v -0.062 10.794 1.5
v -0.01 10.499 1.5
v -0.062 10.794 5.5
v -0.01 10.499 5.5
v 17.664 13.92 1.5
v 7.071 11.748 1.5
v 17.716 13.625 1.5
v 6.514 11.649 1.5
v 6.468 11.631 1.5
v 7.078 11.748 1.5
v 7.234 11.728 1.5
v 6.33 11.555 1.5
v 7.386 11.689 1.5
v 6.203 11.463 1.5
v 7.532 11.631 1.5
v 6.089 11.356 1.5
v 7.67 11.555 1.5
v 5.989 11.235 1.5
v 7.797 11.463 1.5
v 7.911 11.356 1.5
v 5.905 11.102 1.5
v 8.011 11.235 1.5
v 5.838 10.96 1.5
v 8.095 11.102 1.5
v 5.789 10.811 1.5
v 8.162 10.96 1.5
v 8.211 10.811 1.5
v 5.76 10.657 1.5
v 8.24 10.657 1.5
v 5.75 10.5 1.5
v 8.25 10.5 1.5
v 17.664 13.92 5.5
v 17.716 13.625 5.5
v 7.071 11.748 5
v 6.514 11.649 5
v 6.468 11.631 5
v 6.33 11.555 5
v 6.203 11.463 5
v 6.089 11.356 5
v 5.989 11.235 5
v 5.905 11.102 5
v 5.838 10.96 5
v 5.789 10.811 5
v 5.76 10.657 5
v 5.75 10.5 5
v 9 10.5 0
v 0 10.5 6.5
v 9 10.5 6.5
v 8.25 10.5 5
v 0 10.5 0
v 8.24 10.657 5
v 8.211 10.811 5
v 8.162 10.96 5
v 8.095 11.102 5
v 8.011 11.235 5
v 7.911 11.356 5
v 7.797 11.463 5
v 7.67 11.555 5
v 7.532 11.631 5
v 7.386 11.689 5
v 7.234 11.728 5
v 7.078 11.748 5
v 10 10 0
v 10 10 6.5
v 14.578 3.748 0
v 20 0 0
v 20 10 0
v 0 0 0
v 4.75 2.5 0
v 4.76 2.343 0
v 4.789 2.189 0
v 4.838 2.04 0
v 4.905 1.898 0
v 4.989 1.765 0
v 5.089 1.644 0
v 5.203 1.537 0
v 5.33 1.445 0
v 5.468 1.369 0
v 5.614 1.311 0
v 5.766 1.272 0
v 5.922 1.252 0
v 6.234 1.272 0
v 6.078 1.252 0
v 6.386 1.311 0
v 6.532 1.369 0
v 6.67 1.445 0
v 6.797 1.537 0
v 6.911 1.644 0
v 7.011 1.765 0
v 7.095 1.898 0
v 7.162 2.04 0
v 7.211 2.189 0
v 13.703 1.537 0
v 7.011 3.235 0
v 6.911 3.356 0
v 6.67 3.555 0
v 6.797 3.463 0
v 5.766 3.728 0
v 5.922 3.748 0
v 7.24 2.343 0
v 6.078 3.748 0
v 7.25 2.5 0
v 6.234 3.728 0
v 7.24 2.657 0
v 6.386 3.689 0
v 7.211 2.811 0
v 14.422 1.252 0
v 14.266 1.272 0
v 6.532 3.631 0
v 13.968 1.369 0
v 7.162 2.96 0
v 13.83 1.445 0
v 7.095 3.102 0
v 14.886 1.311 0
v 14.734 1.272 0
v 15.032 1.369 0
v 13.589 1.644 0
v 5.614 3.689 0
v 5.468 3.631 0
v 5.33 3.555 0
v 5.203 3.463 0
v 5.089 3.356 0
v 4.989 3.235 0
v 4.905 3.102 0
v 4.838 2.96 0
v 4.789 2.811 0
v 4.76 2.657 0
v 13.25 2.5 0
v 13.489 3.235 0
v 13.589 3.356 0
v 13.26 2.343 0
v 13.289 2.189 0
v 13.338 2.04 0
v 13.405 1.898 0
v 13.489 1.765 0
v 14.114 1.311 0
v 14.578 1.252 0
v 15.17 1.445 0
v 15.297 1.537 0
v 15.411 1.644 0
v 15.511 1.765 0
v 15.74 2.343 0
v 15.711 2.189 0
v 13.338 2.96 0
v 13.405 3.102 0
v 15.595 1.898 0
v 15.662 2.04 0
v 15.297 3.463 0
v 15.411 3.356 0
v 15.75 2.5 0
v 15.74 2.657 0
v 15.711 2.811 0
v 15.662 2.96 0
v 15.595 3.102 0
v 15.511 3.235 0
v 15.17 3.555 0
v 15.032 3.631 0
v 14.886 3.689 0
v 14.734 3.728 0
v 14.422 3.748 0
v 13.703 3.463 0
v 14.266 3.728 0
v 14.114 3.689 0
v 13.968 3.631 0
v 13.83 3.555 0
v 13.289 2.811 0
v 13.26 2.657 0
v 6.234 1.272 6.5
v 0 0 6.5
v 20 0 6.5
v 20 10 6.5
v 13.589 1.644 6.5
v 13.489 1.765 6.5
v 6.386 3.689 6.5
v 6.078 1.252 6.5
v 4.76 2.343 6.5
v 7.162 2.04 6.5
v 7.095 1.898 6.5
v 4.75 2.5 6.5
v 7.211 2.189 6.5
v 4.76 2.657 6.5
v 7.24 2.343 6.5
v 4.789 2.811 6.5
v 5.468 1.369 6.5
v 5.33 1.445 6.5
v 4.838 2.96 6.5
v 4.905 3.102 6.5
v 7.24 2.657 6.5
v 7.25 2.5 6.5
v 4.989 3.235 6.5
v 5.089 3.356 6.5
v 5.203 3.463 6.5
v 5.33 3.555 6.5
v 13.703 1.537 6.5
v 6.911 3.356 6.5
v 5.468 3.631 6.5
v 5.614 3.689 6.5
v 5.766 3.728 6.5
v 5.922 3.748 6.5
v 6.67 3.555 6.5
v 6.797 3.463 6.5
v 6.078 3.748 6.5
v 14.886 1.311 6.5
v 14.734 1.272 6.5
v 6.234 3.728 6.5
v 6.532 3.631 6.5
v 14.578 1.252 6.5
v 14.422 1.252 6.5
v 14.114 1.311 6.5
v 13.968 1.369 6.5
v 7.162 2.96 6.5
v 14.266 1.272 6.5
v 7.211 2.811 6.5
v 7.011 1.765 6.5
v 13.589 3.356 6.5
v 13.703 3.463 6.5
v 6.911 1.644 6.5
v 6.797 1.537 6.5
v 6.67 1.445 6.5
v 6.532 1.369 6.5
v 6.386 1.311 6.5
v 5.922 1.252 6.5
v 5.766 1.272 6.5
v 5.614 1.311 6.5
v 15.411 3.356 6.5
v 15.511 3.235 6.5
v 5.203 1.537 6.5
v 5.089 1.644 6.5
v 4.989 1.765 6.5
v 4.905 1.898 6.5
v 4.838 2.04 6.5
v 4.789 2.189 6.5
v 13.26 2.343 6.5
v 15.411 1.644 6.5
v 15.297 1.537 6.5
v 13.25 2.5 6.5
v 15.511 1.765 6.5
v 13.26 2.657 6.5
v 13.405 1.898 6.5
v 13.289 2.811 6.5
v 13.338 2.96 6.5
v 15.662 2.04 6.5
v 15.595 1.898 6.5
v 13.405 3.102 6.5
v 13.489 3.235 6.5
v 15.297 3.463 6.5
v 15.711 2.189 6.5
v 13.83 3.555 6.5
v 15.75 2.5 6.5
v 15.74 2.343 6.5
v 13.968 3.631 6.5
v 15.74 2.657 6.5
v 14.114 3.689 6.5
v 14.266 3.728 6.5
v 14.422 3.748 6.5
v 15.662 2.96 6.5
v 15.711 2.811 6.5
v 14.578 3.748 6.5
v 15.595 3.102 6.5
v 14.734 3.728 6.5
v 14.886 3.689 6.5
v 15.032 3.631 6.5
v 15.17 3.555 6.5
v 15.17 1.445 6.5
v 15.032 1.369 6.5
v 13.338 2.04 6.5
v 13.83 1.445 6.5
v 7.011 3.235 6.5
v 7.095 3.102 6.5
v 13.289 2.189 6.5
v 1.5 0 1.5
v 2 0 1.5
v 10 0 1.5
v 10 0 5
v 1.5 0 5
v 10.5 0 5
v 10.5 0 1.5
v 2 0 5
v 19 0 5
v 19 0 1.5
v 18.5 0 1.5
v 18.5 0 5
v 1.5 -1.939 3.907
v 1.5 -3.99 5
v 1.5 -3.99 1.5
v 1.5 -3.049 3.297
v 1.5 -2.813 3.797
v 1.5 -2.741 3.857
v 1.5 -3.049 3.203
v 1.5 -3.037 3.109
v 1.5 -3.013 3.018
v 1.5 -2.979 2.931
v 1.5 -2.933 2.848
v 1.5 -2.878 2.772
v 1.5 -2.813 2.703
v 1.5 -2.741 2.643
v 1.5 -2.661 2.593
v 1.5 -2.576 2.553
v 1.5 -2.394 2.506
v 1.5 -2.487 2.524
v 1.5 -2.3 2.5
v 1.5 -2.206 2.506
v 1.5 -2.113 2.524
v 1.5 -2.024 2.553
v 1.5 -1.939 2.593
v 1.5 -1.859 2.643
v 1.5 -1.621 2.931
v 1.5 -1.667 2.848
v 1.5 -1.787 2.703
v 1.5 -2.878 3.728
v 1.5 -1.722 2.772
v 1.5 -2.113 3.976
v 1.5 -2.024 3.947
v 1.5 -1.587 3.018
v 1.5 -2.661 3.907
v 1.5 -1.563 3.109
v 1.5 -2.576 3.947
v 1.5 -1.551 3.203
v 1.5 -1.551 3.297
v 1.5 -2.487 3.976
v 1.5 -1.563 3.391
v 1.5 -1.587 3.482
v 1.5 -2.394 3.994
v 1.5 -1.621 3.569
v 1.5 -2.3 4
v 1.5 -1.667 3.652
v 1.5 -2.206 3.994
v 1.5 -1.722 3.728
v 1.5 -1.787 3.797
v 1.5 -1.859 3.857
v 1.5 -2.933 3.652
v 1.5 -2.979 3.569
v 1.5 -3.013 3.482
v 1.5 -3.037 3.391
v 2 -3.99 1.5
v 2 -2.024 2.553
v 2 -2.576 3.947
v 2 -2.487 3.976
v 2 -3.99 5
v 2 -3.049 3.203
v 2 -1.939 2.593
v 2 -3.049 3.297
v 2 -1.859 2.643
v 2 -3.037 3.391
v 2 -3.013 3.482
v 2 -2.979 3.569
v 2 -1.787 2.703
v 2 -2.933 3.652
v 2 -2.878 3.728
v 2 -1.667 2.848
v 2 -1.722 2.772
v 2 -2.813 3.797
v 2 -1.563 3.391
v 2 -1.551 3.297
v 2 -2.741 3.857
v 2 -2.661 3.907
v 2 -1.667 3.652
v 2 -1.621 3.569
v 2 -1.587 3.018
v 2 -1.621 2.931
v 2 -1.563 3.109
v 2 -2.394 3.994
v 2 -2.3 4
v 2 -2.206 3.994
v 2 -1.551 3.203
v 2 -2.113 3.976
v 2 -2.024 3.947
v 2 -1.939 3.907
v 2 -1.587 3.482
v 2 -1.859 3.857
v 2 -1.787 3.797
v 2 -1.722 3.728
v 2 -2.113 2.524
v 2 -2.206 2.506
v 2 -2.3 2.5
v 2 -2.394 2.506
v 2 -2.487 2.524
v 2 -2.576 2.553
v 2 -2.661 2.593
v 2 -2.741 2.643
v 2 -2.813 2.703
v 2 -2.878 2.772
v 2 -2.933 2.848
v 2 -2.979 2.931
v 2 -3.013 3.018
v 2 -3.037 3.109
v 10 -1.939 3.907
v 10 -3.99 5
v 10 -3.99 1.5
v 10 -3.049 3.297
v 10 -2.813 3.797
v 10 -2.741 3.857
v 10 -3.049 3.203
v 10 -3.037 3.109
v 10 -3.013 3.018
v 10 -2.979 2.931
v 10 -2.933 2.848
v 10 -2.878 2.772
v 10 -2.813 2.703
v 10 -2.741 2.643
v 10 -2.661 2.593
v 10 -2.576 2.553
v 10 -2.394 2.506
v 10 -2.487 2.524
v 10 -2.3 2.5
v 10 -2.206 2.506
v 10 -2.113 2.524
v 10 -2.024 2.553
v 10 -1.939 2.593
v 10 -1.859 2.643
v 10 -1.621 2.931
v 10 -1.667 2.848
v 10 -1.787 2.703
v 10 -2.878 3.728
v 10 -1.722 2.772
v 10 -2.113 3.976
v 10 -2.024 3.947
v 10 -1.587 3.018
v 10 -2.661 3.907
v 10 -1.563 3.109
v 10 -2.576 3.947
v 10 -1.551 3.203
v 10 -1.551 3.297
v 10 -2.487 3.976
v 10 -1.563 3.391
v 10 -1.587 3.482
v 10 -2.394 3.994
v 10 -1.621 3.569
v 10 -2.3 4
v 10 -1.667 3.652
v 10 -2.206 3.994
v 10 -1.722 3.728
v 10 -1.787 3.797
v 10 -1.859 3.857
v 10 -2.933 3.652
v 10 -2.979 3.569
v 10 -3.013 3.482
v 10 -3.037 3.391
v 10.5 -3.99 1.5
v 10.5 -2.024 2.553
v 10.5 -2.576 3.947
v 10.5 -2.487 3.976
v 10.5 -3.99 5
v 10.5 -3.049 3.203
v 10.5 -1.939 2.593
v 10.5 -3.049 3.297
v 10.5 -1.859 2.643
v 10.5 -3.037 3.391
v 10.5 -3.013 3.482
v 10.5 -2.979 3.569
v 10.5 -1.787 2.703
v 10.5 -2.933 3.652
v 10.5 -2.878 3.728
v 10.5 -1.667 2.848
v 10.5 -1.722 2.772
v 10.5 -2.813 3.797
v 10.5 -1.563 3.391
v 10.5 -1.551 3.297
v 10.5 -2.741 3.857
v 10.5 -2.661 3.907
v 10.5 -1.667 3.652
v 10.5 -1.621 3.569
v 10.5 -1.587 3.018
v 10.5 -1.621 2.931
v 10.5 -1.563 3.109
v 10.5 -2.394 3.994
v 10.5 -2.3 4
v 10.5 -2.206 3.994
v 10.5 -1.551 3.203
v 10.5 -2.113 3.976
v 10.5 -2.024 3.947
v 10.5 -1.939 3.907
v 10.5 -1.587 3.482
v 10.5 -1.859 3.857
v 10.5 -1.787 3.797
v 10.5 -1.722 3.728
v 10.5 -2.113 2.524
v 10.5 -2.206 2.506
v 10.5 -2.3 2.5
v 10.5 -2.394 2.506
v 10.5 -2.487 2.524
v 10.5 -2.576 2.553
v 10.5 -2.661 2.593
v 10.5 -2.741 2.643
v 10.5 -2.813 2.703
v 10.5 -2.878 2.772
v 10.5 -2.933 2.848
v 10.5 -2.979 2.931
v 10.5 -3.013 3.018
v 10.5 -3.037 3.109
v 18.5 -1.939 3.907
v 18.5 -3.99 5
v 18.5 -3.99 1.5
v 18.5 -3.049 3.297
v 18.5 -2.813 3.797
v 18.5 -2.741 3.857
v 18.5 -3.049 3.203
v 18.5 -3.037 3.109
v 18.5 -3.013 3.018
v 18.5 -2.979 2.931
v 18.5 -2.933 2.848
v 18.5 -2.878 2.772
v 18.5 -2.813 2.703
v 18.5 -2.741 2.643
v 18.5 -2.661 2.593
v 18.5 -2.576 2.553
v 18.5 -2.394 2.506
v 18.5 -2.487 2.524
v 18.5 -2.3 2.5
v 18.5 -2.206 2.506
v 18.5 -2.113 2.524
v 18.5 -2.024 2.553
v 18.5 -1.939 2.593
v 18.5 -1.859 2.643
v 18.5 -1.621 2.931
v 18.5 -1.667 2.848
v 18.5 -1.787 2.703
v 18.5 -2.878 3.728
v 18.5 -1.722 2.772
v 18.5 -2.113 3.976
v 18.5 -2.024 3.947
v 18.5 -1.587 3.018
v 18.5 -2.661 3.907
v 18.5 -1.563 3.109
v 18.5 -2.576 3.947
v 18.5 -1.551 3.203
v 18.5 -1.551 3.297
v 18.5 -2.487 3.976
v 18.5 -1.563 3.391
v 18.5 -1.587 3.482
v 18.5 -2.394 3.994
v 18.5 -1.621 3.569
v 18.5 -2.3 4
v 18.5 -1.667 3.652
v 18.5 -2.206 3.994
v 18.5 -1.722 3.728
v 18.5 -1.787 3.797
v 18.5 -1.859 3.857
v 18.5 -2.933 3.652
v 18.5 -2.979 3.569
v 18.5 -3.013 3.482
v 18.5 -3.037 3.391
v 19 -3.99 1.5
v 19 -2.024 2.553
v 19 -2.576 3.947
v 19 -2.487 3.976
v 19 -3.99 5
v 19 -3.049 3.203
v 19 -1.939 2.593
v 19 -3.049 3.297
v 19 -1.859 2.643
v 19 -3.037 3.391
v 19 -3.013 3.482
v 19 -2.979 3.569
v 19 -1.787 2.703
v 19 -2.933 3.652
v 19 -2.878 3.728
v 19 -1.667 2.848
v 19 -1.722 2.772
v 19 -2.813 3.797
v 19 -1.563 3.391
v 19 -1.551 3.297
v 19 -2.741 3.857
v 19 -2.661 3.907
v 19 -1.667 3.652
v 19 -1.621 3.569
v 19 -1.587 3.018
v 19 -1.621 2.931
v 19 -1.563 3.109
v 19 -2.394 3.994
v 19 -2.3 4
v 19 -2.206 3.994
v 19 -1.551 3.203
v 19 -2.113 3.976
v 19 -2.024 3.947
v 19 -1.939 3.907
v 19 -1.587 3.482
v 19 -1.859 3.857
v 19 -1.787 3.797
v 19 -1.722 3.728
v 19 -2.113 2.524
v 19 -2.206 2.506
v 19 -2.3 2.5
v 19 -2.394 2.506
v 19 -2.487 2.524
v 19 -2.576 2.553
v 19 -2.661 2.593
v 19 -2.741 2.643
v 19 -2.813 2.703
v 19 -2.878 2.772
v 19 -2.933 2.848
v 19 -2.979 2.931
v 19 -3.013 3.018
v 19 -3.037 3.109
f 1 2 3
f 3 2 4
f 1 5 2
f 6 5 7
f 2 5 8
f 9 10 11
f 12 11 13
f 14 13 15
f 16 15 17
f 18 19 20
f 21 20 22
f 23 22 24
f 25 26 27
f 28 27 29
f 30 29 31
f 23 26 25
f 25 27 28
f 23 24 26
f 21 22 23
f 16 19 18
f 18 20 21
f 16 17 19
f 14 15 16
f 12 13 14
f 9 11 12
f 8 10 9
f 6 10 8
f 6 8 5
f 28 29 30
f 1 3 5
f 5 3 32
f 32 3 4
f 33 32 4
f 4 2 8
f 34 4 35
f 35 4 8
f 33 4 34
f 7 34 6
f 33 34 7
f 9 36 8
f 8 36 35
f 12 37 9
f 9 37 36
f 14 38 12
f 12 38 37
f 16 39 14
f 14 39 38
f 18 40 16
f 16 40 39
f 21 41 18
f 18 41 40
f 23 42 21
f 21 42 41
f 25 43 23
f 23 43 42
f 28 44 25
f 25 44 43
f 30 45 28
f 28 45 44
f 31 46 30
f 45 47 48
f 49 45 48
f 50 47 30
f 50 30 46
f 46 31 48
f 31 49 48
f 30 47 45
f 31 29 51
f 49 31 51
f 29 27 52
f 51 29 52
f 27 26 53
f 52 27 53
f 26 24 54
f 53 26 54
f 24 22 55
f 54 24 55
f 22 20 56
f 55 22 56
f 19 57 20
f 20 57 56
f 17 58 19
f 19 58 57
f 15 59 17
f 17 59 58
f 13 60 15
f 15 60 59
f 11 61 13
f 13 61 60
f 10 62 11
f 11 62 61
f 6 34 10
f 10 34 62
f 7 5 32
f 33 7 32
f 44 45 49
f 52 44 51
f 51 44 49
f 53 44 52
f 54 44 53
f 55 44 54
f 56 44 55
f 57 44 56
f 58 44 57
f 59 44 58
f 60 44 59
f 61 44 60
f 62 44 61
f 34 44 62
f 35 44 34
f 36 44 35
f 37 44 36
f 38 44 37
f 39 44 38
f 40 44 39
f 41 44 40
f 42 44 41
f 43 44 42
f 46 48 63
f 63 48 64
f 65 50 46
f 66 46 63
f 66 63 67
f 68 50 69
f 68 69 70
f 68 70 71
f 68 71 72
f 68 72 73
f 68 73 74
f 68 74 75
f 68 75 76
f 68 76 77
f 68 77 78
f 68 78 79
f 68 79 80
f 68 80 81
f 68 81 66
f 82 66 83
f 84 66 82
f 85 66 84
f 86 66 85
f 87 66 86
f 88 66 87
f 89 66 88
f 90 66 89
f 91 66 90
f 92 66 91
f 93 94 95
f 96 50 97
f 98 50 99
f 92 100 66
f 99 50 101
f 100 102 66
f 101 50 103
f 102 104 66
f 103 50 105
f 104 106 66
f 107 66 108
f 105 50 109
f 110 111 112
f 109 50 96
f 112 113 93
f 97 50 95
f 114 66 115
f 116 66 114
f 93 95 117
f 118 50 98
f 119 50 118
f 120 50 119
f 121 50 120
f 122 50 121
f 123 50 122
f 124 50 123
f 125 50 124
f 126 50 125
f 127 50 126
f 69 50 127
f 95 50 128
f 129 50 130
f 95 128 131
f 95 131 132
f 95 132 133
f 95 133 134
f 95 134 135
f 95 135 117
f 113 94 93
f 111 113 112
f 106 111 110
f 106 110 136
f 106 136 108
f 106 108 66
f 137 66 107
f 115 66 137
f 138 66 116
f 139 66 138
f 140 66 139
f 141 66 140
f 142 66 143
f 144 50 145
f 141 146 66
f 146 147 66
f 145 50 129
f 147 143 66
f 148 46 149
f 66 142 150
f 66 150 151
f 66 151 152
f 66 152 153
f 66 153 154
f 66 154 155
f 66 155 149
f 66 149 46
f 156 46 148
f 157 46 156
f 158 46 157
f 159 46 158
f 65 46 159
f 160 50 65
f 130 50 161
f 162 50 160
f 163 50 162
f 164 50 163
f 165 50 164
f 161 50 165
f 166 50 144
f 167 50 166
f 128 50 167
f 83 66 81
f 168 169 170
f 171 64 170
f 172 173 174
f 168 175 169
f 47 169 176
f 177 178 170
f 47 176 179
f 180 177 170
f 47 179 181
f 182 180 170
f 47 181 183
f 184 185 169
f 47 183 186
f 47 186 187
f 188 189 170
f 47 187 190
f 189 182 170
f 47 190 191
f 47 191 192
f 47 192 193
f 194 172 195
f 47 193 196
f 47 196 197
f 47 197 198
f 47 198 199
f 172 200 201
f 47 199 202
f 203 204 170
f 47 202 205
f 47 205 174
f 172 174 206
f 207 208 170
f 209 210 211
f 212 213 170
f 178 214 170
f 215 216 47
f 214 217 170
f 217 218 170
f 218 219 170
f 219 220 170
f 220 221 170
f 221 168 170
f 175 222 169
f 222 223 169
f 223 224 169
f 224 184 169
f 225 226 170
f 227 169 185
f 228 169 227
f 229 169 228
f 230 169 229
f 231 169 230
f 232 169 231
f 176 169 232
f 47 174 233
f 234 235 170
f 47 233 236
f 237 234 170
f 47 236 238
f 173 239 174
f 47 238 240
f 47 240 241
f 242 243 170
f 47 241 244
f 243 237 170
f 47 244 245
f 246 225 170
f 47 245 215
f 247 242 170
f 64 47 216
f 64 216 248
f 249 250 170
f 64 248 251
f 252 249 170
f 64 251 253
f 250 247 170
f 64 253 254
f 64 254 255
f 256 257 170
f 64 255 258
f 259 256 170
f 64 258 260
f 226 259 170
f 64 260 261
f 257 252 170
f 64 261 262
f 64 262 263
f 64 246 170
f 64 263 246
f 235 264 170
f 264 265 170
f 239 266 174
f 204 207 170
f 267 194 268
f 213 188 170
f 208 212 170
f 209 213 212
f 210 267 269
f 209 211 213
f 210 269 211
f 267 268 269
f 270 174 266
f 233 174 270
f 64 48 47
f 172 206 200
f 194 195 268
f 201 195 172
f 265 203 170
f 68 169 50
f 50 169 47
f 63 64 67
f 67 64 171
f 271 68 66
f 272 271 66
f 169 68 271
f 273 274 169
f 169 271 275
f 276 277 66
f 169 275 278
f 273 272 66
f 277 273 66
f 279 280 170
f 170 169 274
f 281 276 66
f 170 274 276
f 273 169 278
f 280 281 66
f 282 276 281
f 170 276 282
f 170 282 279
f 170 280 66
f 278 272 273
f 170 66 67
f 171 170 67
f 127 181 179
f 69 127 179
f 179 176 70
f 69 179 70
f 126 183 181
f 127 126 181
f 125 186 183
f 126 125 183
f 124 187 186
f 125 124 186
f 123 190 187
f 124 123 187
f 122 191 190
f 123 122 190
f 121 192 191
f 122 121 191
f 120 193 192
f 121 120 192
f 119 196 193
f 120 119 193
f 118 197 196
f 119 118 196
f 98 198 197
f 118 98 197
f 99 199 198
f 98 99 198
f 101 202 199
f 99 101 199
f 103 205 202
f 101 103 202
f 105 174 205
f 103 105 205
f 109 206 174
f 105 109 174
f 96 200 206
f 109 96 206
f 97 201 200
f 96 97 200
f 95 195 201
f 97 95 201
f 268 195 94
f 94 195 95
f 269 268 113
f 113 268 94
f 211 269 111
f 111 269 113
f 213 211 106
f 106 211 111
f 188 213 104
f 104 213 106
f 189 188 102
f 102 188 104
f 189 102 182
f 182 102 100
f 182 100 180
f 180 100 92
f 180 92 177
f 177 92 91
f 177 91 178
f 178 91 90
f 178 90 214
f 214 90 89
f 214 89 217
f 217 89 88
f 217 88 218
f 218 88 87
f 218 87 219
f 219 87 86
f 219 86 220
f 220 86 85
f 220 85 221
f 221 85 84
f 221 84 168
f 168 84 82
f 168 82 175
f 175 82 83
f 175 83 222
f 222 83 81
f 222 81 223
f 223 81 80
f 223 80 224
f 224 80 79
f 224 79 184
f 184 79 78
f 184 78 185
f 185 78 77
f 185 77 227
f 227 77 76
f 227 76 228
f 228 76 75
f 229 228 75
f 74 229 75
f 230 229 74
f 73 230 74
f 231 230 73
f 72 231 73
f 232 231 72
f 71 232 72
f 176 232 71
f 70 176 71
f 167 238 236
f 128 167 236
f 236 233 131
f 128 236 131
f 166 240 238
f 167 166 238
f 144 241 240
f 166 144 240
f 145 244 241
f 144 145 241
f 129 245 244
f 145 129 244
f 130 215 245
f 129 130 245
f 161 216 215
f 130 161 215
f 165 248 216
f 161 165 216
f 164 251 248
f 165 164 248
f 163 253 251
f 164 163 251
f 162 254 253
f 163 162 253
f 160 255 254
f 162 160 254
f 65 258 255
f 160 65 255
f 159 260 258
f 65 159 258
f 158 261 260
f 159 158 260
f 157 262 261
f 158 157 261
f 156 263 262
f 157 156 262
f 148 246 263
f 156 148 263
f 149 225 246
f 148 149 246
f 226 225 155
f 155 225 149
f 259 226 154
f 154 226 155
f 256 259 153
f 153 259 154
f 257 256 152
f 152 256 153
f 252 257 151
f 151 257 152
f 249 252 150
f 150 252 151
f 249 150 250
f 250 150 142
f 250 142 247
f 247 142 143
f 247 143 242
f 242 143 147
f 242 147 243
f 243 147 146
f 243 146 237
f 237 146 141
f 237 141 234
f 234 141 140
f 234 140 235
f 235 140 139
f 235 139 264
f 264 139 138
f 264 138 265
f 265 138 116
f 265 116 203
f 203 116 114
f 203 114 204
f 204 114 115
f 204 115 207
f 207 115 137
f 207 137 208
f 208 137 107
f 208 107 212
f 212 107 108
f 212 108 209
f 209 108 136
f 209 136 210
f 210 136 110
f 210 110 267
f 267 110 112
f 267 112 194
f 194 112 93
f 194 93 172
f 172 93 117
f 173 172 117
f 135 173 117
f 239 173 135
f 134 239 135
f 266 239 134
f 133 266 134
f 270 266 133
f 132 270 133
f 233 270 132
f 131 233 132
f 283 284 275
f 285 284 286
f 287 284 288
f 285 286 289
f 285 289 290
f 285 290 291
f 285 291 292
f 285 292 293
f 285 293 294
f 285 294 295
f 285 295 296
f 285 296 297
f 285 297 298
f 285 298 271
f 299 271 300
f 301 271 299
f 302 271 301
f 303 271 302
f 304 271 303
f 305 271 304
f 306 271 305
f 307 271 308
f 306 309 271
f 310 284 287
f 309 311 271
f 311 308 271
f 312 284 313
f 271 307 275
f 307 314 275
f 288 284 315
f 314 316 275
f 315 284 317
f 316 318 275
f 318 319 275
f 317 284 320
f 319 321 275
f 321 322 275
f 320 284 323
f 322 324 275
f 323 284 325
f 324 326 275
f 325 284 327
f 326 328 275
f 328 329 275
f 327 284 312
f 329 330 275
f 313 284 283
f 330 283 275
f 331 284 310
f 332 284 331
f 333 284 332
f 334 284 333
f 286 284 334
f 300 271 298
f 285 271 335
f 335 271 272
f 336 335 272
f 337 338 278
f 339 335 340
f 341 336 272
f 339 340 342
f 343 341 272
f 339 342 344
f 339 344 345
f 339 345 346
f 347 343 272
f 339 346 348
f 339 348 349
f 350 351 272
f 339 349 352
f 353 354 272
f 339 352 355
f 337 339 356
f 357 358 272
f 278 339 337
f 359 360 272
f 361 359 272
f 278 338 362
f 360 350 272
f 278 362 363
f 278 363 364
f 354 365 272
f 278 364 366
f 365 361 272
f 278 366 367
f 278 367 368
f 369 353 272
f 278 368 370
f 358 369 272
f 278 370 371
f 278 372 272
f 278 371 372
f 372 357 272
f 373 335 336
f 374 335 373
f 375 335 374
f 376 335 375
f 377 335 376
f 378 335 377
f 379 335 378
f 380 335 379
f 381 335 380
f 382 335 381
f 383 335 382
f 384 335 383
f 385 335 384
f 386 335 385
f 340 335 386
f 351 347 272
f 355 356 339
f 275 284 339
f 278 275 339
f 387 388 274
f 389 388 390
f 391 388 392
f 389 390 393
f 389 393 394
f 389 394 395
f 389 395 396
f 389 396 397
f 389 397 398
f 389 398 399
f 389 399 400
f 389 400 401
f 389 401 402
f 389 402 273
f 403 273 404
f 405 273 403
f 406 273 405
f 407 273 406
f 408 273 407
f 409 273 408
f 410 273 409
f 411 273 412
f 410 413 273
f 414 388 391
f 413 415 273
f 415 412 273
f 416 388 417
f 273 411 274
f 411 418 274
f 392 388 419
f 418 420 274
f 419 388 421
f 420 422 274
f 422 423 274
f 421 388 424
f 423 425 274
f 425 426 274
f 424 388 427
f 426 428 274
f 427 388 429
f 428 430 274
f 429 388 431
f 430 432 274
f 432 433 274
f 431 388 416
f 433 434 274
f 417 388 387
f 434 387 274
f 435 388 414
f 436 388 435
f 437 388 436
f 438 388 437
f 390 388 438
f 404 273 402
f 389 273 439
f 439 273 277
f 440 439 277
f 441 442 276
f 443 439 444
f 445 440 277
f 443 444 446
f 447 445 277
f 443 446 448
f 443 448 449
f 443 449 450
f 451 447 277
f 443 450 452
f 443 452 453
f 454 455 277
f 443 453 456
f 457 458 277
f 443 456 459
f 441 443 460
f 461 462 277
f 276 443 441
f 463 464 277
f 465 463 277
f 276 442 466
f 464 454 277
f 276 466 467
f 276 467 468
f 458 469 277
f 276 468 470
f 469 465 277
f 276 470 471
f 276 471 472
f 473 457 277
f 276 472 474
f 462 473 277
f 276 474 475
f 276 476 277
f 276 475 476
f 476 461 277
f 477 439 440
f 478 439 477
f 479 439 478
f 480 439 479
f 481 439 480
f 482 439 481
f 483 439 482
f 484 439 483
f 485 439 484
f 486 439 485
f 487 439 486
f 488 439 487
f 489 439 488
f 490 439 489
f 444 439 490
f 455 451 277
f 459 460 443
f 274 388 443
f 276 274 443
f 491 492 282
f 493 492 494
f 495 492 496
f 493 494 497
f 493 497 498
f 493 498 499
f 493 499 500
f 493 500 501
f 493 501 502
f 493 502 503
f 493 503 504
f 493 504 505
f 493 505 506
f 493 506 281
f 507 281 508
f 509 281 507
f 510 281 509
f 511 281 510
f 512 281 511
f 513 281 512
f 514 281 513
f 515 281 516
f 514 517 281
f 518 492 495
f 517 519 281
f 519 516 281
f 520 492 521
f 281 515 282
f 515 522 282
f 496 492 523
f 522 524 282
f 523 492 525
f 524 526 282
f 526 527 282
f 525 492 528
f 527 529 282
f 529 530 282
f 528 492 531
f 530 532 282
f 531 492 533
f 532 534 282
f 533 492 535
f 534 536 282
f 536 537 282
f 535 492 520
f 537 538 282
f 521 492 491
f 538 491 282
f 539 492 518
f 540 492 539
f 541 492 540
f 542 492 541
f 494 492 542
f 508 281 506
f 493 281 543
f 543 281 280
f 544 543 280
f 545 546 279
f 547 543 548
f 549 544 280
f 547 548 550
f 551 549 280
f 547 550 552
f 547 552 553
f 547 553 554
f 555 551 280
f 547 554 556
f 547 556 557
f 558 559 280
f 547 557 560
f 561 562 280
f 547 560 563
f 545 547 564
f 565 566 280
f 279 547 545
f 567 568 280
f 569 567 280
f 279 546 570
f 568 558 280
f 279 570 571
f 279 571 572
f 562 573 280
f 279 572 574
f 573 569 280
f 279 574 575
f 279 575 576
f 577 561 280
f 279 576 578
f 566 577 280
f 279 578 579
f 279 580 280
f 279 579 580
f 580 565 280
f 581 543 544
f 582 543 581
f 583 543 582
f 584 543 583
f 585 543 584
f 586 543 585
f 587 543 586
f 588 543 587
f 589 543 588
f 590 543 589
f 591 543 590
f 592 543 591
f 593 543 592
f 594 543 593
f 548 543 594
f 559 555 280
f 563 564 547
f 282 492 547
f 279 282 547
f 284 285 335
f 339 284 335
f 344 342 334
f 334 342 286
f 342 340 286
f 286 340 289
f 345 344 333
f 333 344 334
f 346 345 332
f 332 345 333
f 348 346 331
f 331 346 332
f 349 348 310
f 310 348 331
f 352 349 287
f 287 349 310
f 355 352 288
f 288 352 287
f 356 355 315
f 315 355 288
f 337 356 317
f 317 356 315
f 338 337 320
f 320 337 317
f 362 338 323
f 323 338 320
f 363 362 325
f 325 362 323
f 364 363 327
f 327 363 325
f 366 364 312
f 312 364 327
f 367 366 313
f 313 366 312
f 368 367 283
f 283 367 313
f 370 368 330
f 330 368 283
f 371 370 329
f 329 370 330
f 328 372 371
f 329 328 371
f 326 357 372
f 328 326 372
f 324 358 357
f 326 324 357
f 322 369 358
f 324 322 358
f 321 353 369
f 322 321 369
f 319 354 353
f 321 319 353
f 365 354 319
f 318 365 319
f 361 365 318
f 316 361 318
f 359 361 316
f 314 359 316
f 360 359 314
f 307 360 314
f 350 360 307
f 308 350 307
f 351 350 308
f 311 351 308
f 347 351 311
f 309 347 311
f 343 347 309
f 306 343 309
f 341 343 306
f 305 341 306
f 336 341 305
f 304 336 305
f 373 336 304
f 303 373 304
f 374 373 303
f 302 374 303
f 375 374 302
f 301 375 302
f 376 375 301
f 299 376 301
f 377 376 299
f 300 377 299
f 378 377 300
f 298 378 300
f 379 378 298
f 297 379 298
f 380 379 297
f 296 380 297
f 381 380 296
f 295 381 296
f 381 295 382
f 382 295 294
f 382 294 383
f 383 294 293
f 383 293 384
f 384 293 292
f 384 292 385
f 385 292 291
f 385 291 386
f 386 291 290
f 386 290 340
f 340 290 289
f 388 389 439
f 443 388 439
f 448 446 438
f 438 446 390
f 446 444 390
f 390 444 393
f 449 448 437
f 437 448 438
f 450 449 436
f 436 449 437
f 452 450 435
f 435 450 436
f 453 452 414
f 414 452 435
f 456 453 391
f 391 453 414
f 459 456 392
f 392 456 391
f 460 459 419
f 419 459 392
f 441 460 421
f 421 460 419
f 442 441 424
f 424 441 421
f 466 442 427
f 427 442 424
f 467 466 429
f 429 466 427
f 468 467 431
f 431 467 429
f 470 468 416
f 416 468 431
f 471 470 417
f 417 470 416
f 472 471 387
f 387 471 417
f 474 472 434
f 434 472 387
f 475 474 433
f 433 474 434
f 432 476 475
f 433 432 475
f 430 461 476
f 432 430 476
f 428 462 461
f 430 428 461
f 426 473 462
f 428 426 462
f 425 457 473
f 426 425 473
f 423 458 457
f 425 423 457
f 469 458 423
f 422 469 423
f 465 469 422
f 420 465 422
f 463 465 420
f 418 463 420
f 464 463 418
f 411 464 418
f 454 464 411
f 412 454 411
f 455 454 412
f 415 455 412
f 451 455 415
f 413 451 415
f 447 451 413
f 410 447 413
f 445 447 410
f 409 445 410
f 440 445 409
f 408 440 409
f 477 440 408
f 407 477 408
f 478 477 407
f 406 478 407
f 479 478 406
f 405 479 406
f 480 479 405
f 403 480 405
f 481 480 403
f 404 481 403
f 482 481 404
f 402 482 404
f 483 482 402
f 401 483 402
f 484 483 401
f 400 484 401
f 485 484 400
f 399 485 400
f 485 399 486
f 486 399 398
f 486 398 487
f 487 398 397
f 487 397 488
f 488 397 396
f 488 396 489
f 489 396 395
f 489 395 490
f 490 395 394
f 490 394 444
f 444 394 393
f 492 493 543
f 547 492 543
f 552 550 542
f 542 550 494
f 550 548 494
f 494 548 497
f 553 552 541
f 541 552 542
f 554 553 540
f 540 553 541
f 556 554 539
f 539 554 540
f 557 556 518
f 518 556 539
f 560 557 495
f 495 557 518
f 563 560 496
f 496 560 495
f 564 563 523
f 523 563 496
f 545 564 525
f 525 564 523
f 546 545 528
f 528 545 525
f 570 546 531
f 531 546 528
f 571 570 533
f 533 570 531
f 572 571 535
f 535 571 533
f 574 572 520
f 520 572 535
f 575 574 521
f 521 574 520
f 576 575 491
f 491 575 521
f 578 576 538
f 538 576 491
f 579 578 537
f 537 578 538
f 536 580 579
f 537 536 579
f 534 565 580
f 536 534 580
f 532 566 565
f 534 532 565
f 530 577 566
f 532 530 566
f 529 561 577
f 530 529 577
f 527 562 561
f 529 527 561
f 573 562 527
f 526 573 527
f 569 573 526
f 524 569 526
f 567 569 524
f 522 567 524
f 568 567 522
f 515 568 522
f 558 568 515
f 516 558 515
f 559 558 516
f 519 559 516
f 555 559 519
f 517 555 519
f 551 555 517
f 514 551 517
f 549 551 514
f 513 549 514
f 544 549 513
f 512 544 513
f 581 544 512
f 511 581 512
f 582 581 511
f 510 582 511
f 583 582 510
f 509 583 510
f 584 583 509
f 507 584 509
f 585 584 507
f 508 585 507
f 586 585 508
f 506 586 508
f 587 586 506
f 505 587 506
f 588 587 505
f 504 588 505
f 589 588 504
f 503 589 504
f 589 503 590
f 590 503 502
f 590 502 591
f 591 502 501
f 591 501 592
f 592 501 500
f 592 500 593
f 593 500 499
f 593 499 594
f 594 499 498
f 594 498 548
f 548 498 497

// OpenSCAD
/*
Projet ReprapJeanne
End stop 

github: https://github.com/gnieark/reprapJeanne
wiki https://mail.jeannedhack.org/wicked/display.php?page=reprap_geante

By Gnieark https://blog-du-grouik.tinad.fr
& TranKILLoman   

License GNU-GPL V3

références:
SS-5GL-F
0717H3
marque "OMRON"
*/

module endStop(){
	difference(){
		union(){
			linear_extrude(6.5)
			polygon (points=[
			[0,0],[20,0],[20,10],[10,10],[9,10.5],[0,10.5]]);

			translate([1.5,-3.99,1.5]) cube([0.5,4,3.5]);
			translate([10,-3.99,1.5]) cube([0.5,4,3.5]);
			translate([18.5,-3.99,1.5]) cube([0.5,4,3.5]);
		
			translate ([7,10.5,1.5]) cylinder(r=1.25,h=3.5,$fn=50);
			translate ([-0.01,10.499,1.5]) rotate([0,0,10]) cube([18,0.3,4]);
		}
		union(){
			translate ([6,2.5,-0.01]) cylinder(r=1.25,h=15,$fn=50);
			translate ([14.5,2.5,-0.01]) cylinder(r=1.25,h=15,$fn=50);
			translate([0,-2.3,3.25]) rotate([0,90,0])  cylinder(r=0.75,h=20,$fn=50);
		}
	}
}
endStop();
